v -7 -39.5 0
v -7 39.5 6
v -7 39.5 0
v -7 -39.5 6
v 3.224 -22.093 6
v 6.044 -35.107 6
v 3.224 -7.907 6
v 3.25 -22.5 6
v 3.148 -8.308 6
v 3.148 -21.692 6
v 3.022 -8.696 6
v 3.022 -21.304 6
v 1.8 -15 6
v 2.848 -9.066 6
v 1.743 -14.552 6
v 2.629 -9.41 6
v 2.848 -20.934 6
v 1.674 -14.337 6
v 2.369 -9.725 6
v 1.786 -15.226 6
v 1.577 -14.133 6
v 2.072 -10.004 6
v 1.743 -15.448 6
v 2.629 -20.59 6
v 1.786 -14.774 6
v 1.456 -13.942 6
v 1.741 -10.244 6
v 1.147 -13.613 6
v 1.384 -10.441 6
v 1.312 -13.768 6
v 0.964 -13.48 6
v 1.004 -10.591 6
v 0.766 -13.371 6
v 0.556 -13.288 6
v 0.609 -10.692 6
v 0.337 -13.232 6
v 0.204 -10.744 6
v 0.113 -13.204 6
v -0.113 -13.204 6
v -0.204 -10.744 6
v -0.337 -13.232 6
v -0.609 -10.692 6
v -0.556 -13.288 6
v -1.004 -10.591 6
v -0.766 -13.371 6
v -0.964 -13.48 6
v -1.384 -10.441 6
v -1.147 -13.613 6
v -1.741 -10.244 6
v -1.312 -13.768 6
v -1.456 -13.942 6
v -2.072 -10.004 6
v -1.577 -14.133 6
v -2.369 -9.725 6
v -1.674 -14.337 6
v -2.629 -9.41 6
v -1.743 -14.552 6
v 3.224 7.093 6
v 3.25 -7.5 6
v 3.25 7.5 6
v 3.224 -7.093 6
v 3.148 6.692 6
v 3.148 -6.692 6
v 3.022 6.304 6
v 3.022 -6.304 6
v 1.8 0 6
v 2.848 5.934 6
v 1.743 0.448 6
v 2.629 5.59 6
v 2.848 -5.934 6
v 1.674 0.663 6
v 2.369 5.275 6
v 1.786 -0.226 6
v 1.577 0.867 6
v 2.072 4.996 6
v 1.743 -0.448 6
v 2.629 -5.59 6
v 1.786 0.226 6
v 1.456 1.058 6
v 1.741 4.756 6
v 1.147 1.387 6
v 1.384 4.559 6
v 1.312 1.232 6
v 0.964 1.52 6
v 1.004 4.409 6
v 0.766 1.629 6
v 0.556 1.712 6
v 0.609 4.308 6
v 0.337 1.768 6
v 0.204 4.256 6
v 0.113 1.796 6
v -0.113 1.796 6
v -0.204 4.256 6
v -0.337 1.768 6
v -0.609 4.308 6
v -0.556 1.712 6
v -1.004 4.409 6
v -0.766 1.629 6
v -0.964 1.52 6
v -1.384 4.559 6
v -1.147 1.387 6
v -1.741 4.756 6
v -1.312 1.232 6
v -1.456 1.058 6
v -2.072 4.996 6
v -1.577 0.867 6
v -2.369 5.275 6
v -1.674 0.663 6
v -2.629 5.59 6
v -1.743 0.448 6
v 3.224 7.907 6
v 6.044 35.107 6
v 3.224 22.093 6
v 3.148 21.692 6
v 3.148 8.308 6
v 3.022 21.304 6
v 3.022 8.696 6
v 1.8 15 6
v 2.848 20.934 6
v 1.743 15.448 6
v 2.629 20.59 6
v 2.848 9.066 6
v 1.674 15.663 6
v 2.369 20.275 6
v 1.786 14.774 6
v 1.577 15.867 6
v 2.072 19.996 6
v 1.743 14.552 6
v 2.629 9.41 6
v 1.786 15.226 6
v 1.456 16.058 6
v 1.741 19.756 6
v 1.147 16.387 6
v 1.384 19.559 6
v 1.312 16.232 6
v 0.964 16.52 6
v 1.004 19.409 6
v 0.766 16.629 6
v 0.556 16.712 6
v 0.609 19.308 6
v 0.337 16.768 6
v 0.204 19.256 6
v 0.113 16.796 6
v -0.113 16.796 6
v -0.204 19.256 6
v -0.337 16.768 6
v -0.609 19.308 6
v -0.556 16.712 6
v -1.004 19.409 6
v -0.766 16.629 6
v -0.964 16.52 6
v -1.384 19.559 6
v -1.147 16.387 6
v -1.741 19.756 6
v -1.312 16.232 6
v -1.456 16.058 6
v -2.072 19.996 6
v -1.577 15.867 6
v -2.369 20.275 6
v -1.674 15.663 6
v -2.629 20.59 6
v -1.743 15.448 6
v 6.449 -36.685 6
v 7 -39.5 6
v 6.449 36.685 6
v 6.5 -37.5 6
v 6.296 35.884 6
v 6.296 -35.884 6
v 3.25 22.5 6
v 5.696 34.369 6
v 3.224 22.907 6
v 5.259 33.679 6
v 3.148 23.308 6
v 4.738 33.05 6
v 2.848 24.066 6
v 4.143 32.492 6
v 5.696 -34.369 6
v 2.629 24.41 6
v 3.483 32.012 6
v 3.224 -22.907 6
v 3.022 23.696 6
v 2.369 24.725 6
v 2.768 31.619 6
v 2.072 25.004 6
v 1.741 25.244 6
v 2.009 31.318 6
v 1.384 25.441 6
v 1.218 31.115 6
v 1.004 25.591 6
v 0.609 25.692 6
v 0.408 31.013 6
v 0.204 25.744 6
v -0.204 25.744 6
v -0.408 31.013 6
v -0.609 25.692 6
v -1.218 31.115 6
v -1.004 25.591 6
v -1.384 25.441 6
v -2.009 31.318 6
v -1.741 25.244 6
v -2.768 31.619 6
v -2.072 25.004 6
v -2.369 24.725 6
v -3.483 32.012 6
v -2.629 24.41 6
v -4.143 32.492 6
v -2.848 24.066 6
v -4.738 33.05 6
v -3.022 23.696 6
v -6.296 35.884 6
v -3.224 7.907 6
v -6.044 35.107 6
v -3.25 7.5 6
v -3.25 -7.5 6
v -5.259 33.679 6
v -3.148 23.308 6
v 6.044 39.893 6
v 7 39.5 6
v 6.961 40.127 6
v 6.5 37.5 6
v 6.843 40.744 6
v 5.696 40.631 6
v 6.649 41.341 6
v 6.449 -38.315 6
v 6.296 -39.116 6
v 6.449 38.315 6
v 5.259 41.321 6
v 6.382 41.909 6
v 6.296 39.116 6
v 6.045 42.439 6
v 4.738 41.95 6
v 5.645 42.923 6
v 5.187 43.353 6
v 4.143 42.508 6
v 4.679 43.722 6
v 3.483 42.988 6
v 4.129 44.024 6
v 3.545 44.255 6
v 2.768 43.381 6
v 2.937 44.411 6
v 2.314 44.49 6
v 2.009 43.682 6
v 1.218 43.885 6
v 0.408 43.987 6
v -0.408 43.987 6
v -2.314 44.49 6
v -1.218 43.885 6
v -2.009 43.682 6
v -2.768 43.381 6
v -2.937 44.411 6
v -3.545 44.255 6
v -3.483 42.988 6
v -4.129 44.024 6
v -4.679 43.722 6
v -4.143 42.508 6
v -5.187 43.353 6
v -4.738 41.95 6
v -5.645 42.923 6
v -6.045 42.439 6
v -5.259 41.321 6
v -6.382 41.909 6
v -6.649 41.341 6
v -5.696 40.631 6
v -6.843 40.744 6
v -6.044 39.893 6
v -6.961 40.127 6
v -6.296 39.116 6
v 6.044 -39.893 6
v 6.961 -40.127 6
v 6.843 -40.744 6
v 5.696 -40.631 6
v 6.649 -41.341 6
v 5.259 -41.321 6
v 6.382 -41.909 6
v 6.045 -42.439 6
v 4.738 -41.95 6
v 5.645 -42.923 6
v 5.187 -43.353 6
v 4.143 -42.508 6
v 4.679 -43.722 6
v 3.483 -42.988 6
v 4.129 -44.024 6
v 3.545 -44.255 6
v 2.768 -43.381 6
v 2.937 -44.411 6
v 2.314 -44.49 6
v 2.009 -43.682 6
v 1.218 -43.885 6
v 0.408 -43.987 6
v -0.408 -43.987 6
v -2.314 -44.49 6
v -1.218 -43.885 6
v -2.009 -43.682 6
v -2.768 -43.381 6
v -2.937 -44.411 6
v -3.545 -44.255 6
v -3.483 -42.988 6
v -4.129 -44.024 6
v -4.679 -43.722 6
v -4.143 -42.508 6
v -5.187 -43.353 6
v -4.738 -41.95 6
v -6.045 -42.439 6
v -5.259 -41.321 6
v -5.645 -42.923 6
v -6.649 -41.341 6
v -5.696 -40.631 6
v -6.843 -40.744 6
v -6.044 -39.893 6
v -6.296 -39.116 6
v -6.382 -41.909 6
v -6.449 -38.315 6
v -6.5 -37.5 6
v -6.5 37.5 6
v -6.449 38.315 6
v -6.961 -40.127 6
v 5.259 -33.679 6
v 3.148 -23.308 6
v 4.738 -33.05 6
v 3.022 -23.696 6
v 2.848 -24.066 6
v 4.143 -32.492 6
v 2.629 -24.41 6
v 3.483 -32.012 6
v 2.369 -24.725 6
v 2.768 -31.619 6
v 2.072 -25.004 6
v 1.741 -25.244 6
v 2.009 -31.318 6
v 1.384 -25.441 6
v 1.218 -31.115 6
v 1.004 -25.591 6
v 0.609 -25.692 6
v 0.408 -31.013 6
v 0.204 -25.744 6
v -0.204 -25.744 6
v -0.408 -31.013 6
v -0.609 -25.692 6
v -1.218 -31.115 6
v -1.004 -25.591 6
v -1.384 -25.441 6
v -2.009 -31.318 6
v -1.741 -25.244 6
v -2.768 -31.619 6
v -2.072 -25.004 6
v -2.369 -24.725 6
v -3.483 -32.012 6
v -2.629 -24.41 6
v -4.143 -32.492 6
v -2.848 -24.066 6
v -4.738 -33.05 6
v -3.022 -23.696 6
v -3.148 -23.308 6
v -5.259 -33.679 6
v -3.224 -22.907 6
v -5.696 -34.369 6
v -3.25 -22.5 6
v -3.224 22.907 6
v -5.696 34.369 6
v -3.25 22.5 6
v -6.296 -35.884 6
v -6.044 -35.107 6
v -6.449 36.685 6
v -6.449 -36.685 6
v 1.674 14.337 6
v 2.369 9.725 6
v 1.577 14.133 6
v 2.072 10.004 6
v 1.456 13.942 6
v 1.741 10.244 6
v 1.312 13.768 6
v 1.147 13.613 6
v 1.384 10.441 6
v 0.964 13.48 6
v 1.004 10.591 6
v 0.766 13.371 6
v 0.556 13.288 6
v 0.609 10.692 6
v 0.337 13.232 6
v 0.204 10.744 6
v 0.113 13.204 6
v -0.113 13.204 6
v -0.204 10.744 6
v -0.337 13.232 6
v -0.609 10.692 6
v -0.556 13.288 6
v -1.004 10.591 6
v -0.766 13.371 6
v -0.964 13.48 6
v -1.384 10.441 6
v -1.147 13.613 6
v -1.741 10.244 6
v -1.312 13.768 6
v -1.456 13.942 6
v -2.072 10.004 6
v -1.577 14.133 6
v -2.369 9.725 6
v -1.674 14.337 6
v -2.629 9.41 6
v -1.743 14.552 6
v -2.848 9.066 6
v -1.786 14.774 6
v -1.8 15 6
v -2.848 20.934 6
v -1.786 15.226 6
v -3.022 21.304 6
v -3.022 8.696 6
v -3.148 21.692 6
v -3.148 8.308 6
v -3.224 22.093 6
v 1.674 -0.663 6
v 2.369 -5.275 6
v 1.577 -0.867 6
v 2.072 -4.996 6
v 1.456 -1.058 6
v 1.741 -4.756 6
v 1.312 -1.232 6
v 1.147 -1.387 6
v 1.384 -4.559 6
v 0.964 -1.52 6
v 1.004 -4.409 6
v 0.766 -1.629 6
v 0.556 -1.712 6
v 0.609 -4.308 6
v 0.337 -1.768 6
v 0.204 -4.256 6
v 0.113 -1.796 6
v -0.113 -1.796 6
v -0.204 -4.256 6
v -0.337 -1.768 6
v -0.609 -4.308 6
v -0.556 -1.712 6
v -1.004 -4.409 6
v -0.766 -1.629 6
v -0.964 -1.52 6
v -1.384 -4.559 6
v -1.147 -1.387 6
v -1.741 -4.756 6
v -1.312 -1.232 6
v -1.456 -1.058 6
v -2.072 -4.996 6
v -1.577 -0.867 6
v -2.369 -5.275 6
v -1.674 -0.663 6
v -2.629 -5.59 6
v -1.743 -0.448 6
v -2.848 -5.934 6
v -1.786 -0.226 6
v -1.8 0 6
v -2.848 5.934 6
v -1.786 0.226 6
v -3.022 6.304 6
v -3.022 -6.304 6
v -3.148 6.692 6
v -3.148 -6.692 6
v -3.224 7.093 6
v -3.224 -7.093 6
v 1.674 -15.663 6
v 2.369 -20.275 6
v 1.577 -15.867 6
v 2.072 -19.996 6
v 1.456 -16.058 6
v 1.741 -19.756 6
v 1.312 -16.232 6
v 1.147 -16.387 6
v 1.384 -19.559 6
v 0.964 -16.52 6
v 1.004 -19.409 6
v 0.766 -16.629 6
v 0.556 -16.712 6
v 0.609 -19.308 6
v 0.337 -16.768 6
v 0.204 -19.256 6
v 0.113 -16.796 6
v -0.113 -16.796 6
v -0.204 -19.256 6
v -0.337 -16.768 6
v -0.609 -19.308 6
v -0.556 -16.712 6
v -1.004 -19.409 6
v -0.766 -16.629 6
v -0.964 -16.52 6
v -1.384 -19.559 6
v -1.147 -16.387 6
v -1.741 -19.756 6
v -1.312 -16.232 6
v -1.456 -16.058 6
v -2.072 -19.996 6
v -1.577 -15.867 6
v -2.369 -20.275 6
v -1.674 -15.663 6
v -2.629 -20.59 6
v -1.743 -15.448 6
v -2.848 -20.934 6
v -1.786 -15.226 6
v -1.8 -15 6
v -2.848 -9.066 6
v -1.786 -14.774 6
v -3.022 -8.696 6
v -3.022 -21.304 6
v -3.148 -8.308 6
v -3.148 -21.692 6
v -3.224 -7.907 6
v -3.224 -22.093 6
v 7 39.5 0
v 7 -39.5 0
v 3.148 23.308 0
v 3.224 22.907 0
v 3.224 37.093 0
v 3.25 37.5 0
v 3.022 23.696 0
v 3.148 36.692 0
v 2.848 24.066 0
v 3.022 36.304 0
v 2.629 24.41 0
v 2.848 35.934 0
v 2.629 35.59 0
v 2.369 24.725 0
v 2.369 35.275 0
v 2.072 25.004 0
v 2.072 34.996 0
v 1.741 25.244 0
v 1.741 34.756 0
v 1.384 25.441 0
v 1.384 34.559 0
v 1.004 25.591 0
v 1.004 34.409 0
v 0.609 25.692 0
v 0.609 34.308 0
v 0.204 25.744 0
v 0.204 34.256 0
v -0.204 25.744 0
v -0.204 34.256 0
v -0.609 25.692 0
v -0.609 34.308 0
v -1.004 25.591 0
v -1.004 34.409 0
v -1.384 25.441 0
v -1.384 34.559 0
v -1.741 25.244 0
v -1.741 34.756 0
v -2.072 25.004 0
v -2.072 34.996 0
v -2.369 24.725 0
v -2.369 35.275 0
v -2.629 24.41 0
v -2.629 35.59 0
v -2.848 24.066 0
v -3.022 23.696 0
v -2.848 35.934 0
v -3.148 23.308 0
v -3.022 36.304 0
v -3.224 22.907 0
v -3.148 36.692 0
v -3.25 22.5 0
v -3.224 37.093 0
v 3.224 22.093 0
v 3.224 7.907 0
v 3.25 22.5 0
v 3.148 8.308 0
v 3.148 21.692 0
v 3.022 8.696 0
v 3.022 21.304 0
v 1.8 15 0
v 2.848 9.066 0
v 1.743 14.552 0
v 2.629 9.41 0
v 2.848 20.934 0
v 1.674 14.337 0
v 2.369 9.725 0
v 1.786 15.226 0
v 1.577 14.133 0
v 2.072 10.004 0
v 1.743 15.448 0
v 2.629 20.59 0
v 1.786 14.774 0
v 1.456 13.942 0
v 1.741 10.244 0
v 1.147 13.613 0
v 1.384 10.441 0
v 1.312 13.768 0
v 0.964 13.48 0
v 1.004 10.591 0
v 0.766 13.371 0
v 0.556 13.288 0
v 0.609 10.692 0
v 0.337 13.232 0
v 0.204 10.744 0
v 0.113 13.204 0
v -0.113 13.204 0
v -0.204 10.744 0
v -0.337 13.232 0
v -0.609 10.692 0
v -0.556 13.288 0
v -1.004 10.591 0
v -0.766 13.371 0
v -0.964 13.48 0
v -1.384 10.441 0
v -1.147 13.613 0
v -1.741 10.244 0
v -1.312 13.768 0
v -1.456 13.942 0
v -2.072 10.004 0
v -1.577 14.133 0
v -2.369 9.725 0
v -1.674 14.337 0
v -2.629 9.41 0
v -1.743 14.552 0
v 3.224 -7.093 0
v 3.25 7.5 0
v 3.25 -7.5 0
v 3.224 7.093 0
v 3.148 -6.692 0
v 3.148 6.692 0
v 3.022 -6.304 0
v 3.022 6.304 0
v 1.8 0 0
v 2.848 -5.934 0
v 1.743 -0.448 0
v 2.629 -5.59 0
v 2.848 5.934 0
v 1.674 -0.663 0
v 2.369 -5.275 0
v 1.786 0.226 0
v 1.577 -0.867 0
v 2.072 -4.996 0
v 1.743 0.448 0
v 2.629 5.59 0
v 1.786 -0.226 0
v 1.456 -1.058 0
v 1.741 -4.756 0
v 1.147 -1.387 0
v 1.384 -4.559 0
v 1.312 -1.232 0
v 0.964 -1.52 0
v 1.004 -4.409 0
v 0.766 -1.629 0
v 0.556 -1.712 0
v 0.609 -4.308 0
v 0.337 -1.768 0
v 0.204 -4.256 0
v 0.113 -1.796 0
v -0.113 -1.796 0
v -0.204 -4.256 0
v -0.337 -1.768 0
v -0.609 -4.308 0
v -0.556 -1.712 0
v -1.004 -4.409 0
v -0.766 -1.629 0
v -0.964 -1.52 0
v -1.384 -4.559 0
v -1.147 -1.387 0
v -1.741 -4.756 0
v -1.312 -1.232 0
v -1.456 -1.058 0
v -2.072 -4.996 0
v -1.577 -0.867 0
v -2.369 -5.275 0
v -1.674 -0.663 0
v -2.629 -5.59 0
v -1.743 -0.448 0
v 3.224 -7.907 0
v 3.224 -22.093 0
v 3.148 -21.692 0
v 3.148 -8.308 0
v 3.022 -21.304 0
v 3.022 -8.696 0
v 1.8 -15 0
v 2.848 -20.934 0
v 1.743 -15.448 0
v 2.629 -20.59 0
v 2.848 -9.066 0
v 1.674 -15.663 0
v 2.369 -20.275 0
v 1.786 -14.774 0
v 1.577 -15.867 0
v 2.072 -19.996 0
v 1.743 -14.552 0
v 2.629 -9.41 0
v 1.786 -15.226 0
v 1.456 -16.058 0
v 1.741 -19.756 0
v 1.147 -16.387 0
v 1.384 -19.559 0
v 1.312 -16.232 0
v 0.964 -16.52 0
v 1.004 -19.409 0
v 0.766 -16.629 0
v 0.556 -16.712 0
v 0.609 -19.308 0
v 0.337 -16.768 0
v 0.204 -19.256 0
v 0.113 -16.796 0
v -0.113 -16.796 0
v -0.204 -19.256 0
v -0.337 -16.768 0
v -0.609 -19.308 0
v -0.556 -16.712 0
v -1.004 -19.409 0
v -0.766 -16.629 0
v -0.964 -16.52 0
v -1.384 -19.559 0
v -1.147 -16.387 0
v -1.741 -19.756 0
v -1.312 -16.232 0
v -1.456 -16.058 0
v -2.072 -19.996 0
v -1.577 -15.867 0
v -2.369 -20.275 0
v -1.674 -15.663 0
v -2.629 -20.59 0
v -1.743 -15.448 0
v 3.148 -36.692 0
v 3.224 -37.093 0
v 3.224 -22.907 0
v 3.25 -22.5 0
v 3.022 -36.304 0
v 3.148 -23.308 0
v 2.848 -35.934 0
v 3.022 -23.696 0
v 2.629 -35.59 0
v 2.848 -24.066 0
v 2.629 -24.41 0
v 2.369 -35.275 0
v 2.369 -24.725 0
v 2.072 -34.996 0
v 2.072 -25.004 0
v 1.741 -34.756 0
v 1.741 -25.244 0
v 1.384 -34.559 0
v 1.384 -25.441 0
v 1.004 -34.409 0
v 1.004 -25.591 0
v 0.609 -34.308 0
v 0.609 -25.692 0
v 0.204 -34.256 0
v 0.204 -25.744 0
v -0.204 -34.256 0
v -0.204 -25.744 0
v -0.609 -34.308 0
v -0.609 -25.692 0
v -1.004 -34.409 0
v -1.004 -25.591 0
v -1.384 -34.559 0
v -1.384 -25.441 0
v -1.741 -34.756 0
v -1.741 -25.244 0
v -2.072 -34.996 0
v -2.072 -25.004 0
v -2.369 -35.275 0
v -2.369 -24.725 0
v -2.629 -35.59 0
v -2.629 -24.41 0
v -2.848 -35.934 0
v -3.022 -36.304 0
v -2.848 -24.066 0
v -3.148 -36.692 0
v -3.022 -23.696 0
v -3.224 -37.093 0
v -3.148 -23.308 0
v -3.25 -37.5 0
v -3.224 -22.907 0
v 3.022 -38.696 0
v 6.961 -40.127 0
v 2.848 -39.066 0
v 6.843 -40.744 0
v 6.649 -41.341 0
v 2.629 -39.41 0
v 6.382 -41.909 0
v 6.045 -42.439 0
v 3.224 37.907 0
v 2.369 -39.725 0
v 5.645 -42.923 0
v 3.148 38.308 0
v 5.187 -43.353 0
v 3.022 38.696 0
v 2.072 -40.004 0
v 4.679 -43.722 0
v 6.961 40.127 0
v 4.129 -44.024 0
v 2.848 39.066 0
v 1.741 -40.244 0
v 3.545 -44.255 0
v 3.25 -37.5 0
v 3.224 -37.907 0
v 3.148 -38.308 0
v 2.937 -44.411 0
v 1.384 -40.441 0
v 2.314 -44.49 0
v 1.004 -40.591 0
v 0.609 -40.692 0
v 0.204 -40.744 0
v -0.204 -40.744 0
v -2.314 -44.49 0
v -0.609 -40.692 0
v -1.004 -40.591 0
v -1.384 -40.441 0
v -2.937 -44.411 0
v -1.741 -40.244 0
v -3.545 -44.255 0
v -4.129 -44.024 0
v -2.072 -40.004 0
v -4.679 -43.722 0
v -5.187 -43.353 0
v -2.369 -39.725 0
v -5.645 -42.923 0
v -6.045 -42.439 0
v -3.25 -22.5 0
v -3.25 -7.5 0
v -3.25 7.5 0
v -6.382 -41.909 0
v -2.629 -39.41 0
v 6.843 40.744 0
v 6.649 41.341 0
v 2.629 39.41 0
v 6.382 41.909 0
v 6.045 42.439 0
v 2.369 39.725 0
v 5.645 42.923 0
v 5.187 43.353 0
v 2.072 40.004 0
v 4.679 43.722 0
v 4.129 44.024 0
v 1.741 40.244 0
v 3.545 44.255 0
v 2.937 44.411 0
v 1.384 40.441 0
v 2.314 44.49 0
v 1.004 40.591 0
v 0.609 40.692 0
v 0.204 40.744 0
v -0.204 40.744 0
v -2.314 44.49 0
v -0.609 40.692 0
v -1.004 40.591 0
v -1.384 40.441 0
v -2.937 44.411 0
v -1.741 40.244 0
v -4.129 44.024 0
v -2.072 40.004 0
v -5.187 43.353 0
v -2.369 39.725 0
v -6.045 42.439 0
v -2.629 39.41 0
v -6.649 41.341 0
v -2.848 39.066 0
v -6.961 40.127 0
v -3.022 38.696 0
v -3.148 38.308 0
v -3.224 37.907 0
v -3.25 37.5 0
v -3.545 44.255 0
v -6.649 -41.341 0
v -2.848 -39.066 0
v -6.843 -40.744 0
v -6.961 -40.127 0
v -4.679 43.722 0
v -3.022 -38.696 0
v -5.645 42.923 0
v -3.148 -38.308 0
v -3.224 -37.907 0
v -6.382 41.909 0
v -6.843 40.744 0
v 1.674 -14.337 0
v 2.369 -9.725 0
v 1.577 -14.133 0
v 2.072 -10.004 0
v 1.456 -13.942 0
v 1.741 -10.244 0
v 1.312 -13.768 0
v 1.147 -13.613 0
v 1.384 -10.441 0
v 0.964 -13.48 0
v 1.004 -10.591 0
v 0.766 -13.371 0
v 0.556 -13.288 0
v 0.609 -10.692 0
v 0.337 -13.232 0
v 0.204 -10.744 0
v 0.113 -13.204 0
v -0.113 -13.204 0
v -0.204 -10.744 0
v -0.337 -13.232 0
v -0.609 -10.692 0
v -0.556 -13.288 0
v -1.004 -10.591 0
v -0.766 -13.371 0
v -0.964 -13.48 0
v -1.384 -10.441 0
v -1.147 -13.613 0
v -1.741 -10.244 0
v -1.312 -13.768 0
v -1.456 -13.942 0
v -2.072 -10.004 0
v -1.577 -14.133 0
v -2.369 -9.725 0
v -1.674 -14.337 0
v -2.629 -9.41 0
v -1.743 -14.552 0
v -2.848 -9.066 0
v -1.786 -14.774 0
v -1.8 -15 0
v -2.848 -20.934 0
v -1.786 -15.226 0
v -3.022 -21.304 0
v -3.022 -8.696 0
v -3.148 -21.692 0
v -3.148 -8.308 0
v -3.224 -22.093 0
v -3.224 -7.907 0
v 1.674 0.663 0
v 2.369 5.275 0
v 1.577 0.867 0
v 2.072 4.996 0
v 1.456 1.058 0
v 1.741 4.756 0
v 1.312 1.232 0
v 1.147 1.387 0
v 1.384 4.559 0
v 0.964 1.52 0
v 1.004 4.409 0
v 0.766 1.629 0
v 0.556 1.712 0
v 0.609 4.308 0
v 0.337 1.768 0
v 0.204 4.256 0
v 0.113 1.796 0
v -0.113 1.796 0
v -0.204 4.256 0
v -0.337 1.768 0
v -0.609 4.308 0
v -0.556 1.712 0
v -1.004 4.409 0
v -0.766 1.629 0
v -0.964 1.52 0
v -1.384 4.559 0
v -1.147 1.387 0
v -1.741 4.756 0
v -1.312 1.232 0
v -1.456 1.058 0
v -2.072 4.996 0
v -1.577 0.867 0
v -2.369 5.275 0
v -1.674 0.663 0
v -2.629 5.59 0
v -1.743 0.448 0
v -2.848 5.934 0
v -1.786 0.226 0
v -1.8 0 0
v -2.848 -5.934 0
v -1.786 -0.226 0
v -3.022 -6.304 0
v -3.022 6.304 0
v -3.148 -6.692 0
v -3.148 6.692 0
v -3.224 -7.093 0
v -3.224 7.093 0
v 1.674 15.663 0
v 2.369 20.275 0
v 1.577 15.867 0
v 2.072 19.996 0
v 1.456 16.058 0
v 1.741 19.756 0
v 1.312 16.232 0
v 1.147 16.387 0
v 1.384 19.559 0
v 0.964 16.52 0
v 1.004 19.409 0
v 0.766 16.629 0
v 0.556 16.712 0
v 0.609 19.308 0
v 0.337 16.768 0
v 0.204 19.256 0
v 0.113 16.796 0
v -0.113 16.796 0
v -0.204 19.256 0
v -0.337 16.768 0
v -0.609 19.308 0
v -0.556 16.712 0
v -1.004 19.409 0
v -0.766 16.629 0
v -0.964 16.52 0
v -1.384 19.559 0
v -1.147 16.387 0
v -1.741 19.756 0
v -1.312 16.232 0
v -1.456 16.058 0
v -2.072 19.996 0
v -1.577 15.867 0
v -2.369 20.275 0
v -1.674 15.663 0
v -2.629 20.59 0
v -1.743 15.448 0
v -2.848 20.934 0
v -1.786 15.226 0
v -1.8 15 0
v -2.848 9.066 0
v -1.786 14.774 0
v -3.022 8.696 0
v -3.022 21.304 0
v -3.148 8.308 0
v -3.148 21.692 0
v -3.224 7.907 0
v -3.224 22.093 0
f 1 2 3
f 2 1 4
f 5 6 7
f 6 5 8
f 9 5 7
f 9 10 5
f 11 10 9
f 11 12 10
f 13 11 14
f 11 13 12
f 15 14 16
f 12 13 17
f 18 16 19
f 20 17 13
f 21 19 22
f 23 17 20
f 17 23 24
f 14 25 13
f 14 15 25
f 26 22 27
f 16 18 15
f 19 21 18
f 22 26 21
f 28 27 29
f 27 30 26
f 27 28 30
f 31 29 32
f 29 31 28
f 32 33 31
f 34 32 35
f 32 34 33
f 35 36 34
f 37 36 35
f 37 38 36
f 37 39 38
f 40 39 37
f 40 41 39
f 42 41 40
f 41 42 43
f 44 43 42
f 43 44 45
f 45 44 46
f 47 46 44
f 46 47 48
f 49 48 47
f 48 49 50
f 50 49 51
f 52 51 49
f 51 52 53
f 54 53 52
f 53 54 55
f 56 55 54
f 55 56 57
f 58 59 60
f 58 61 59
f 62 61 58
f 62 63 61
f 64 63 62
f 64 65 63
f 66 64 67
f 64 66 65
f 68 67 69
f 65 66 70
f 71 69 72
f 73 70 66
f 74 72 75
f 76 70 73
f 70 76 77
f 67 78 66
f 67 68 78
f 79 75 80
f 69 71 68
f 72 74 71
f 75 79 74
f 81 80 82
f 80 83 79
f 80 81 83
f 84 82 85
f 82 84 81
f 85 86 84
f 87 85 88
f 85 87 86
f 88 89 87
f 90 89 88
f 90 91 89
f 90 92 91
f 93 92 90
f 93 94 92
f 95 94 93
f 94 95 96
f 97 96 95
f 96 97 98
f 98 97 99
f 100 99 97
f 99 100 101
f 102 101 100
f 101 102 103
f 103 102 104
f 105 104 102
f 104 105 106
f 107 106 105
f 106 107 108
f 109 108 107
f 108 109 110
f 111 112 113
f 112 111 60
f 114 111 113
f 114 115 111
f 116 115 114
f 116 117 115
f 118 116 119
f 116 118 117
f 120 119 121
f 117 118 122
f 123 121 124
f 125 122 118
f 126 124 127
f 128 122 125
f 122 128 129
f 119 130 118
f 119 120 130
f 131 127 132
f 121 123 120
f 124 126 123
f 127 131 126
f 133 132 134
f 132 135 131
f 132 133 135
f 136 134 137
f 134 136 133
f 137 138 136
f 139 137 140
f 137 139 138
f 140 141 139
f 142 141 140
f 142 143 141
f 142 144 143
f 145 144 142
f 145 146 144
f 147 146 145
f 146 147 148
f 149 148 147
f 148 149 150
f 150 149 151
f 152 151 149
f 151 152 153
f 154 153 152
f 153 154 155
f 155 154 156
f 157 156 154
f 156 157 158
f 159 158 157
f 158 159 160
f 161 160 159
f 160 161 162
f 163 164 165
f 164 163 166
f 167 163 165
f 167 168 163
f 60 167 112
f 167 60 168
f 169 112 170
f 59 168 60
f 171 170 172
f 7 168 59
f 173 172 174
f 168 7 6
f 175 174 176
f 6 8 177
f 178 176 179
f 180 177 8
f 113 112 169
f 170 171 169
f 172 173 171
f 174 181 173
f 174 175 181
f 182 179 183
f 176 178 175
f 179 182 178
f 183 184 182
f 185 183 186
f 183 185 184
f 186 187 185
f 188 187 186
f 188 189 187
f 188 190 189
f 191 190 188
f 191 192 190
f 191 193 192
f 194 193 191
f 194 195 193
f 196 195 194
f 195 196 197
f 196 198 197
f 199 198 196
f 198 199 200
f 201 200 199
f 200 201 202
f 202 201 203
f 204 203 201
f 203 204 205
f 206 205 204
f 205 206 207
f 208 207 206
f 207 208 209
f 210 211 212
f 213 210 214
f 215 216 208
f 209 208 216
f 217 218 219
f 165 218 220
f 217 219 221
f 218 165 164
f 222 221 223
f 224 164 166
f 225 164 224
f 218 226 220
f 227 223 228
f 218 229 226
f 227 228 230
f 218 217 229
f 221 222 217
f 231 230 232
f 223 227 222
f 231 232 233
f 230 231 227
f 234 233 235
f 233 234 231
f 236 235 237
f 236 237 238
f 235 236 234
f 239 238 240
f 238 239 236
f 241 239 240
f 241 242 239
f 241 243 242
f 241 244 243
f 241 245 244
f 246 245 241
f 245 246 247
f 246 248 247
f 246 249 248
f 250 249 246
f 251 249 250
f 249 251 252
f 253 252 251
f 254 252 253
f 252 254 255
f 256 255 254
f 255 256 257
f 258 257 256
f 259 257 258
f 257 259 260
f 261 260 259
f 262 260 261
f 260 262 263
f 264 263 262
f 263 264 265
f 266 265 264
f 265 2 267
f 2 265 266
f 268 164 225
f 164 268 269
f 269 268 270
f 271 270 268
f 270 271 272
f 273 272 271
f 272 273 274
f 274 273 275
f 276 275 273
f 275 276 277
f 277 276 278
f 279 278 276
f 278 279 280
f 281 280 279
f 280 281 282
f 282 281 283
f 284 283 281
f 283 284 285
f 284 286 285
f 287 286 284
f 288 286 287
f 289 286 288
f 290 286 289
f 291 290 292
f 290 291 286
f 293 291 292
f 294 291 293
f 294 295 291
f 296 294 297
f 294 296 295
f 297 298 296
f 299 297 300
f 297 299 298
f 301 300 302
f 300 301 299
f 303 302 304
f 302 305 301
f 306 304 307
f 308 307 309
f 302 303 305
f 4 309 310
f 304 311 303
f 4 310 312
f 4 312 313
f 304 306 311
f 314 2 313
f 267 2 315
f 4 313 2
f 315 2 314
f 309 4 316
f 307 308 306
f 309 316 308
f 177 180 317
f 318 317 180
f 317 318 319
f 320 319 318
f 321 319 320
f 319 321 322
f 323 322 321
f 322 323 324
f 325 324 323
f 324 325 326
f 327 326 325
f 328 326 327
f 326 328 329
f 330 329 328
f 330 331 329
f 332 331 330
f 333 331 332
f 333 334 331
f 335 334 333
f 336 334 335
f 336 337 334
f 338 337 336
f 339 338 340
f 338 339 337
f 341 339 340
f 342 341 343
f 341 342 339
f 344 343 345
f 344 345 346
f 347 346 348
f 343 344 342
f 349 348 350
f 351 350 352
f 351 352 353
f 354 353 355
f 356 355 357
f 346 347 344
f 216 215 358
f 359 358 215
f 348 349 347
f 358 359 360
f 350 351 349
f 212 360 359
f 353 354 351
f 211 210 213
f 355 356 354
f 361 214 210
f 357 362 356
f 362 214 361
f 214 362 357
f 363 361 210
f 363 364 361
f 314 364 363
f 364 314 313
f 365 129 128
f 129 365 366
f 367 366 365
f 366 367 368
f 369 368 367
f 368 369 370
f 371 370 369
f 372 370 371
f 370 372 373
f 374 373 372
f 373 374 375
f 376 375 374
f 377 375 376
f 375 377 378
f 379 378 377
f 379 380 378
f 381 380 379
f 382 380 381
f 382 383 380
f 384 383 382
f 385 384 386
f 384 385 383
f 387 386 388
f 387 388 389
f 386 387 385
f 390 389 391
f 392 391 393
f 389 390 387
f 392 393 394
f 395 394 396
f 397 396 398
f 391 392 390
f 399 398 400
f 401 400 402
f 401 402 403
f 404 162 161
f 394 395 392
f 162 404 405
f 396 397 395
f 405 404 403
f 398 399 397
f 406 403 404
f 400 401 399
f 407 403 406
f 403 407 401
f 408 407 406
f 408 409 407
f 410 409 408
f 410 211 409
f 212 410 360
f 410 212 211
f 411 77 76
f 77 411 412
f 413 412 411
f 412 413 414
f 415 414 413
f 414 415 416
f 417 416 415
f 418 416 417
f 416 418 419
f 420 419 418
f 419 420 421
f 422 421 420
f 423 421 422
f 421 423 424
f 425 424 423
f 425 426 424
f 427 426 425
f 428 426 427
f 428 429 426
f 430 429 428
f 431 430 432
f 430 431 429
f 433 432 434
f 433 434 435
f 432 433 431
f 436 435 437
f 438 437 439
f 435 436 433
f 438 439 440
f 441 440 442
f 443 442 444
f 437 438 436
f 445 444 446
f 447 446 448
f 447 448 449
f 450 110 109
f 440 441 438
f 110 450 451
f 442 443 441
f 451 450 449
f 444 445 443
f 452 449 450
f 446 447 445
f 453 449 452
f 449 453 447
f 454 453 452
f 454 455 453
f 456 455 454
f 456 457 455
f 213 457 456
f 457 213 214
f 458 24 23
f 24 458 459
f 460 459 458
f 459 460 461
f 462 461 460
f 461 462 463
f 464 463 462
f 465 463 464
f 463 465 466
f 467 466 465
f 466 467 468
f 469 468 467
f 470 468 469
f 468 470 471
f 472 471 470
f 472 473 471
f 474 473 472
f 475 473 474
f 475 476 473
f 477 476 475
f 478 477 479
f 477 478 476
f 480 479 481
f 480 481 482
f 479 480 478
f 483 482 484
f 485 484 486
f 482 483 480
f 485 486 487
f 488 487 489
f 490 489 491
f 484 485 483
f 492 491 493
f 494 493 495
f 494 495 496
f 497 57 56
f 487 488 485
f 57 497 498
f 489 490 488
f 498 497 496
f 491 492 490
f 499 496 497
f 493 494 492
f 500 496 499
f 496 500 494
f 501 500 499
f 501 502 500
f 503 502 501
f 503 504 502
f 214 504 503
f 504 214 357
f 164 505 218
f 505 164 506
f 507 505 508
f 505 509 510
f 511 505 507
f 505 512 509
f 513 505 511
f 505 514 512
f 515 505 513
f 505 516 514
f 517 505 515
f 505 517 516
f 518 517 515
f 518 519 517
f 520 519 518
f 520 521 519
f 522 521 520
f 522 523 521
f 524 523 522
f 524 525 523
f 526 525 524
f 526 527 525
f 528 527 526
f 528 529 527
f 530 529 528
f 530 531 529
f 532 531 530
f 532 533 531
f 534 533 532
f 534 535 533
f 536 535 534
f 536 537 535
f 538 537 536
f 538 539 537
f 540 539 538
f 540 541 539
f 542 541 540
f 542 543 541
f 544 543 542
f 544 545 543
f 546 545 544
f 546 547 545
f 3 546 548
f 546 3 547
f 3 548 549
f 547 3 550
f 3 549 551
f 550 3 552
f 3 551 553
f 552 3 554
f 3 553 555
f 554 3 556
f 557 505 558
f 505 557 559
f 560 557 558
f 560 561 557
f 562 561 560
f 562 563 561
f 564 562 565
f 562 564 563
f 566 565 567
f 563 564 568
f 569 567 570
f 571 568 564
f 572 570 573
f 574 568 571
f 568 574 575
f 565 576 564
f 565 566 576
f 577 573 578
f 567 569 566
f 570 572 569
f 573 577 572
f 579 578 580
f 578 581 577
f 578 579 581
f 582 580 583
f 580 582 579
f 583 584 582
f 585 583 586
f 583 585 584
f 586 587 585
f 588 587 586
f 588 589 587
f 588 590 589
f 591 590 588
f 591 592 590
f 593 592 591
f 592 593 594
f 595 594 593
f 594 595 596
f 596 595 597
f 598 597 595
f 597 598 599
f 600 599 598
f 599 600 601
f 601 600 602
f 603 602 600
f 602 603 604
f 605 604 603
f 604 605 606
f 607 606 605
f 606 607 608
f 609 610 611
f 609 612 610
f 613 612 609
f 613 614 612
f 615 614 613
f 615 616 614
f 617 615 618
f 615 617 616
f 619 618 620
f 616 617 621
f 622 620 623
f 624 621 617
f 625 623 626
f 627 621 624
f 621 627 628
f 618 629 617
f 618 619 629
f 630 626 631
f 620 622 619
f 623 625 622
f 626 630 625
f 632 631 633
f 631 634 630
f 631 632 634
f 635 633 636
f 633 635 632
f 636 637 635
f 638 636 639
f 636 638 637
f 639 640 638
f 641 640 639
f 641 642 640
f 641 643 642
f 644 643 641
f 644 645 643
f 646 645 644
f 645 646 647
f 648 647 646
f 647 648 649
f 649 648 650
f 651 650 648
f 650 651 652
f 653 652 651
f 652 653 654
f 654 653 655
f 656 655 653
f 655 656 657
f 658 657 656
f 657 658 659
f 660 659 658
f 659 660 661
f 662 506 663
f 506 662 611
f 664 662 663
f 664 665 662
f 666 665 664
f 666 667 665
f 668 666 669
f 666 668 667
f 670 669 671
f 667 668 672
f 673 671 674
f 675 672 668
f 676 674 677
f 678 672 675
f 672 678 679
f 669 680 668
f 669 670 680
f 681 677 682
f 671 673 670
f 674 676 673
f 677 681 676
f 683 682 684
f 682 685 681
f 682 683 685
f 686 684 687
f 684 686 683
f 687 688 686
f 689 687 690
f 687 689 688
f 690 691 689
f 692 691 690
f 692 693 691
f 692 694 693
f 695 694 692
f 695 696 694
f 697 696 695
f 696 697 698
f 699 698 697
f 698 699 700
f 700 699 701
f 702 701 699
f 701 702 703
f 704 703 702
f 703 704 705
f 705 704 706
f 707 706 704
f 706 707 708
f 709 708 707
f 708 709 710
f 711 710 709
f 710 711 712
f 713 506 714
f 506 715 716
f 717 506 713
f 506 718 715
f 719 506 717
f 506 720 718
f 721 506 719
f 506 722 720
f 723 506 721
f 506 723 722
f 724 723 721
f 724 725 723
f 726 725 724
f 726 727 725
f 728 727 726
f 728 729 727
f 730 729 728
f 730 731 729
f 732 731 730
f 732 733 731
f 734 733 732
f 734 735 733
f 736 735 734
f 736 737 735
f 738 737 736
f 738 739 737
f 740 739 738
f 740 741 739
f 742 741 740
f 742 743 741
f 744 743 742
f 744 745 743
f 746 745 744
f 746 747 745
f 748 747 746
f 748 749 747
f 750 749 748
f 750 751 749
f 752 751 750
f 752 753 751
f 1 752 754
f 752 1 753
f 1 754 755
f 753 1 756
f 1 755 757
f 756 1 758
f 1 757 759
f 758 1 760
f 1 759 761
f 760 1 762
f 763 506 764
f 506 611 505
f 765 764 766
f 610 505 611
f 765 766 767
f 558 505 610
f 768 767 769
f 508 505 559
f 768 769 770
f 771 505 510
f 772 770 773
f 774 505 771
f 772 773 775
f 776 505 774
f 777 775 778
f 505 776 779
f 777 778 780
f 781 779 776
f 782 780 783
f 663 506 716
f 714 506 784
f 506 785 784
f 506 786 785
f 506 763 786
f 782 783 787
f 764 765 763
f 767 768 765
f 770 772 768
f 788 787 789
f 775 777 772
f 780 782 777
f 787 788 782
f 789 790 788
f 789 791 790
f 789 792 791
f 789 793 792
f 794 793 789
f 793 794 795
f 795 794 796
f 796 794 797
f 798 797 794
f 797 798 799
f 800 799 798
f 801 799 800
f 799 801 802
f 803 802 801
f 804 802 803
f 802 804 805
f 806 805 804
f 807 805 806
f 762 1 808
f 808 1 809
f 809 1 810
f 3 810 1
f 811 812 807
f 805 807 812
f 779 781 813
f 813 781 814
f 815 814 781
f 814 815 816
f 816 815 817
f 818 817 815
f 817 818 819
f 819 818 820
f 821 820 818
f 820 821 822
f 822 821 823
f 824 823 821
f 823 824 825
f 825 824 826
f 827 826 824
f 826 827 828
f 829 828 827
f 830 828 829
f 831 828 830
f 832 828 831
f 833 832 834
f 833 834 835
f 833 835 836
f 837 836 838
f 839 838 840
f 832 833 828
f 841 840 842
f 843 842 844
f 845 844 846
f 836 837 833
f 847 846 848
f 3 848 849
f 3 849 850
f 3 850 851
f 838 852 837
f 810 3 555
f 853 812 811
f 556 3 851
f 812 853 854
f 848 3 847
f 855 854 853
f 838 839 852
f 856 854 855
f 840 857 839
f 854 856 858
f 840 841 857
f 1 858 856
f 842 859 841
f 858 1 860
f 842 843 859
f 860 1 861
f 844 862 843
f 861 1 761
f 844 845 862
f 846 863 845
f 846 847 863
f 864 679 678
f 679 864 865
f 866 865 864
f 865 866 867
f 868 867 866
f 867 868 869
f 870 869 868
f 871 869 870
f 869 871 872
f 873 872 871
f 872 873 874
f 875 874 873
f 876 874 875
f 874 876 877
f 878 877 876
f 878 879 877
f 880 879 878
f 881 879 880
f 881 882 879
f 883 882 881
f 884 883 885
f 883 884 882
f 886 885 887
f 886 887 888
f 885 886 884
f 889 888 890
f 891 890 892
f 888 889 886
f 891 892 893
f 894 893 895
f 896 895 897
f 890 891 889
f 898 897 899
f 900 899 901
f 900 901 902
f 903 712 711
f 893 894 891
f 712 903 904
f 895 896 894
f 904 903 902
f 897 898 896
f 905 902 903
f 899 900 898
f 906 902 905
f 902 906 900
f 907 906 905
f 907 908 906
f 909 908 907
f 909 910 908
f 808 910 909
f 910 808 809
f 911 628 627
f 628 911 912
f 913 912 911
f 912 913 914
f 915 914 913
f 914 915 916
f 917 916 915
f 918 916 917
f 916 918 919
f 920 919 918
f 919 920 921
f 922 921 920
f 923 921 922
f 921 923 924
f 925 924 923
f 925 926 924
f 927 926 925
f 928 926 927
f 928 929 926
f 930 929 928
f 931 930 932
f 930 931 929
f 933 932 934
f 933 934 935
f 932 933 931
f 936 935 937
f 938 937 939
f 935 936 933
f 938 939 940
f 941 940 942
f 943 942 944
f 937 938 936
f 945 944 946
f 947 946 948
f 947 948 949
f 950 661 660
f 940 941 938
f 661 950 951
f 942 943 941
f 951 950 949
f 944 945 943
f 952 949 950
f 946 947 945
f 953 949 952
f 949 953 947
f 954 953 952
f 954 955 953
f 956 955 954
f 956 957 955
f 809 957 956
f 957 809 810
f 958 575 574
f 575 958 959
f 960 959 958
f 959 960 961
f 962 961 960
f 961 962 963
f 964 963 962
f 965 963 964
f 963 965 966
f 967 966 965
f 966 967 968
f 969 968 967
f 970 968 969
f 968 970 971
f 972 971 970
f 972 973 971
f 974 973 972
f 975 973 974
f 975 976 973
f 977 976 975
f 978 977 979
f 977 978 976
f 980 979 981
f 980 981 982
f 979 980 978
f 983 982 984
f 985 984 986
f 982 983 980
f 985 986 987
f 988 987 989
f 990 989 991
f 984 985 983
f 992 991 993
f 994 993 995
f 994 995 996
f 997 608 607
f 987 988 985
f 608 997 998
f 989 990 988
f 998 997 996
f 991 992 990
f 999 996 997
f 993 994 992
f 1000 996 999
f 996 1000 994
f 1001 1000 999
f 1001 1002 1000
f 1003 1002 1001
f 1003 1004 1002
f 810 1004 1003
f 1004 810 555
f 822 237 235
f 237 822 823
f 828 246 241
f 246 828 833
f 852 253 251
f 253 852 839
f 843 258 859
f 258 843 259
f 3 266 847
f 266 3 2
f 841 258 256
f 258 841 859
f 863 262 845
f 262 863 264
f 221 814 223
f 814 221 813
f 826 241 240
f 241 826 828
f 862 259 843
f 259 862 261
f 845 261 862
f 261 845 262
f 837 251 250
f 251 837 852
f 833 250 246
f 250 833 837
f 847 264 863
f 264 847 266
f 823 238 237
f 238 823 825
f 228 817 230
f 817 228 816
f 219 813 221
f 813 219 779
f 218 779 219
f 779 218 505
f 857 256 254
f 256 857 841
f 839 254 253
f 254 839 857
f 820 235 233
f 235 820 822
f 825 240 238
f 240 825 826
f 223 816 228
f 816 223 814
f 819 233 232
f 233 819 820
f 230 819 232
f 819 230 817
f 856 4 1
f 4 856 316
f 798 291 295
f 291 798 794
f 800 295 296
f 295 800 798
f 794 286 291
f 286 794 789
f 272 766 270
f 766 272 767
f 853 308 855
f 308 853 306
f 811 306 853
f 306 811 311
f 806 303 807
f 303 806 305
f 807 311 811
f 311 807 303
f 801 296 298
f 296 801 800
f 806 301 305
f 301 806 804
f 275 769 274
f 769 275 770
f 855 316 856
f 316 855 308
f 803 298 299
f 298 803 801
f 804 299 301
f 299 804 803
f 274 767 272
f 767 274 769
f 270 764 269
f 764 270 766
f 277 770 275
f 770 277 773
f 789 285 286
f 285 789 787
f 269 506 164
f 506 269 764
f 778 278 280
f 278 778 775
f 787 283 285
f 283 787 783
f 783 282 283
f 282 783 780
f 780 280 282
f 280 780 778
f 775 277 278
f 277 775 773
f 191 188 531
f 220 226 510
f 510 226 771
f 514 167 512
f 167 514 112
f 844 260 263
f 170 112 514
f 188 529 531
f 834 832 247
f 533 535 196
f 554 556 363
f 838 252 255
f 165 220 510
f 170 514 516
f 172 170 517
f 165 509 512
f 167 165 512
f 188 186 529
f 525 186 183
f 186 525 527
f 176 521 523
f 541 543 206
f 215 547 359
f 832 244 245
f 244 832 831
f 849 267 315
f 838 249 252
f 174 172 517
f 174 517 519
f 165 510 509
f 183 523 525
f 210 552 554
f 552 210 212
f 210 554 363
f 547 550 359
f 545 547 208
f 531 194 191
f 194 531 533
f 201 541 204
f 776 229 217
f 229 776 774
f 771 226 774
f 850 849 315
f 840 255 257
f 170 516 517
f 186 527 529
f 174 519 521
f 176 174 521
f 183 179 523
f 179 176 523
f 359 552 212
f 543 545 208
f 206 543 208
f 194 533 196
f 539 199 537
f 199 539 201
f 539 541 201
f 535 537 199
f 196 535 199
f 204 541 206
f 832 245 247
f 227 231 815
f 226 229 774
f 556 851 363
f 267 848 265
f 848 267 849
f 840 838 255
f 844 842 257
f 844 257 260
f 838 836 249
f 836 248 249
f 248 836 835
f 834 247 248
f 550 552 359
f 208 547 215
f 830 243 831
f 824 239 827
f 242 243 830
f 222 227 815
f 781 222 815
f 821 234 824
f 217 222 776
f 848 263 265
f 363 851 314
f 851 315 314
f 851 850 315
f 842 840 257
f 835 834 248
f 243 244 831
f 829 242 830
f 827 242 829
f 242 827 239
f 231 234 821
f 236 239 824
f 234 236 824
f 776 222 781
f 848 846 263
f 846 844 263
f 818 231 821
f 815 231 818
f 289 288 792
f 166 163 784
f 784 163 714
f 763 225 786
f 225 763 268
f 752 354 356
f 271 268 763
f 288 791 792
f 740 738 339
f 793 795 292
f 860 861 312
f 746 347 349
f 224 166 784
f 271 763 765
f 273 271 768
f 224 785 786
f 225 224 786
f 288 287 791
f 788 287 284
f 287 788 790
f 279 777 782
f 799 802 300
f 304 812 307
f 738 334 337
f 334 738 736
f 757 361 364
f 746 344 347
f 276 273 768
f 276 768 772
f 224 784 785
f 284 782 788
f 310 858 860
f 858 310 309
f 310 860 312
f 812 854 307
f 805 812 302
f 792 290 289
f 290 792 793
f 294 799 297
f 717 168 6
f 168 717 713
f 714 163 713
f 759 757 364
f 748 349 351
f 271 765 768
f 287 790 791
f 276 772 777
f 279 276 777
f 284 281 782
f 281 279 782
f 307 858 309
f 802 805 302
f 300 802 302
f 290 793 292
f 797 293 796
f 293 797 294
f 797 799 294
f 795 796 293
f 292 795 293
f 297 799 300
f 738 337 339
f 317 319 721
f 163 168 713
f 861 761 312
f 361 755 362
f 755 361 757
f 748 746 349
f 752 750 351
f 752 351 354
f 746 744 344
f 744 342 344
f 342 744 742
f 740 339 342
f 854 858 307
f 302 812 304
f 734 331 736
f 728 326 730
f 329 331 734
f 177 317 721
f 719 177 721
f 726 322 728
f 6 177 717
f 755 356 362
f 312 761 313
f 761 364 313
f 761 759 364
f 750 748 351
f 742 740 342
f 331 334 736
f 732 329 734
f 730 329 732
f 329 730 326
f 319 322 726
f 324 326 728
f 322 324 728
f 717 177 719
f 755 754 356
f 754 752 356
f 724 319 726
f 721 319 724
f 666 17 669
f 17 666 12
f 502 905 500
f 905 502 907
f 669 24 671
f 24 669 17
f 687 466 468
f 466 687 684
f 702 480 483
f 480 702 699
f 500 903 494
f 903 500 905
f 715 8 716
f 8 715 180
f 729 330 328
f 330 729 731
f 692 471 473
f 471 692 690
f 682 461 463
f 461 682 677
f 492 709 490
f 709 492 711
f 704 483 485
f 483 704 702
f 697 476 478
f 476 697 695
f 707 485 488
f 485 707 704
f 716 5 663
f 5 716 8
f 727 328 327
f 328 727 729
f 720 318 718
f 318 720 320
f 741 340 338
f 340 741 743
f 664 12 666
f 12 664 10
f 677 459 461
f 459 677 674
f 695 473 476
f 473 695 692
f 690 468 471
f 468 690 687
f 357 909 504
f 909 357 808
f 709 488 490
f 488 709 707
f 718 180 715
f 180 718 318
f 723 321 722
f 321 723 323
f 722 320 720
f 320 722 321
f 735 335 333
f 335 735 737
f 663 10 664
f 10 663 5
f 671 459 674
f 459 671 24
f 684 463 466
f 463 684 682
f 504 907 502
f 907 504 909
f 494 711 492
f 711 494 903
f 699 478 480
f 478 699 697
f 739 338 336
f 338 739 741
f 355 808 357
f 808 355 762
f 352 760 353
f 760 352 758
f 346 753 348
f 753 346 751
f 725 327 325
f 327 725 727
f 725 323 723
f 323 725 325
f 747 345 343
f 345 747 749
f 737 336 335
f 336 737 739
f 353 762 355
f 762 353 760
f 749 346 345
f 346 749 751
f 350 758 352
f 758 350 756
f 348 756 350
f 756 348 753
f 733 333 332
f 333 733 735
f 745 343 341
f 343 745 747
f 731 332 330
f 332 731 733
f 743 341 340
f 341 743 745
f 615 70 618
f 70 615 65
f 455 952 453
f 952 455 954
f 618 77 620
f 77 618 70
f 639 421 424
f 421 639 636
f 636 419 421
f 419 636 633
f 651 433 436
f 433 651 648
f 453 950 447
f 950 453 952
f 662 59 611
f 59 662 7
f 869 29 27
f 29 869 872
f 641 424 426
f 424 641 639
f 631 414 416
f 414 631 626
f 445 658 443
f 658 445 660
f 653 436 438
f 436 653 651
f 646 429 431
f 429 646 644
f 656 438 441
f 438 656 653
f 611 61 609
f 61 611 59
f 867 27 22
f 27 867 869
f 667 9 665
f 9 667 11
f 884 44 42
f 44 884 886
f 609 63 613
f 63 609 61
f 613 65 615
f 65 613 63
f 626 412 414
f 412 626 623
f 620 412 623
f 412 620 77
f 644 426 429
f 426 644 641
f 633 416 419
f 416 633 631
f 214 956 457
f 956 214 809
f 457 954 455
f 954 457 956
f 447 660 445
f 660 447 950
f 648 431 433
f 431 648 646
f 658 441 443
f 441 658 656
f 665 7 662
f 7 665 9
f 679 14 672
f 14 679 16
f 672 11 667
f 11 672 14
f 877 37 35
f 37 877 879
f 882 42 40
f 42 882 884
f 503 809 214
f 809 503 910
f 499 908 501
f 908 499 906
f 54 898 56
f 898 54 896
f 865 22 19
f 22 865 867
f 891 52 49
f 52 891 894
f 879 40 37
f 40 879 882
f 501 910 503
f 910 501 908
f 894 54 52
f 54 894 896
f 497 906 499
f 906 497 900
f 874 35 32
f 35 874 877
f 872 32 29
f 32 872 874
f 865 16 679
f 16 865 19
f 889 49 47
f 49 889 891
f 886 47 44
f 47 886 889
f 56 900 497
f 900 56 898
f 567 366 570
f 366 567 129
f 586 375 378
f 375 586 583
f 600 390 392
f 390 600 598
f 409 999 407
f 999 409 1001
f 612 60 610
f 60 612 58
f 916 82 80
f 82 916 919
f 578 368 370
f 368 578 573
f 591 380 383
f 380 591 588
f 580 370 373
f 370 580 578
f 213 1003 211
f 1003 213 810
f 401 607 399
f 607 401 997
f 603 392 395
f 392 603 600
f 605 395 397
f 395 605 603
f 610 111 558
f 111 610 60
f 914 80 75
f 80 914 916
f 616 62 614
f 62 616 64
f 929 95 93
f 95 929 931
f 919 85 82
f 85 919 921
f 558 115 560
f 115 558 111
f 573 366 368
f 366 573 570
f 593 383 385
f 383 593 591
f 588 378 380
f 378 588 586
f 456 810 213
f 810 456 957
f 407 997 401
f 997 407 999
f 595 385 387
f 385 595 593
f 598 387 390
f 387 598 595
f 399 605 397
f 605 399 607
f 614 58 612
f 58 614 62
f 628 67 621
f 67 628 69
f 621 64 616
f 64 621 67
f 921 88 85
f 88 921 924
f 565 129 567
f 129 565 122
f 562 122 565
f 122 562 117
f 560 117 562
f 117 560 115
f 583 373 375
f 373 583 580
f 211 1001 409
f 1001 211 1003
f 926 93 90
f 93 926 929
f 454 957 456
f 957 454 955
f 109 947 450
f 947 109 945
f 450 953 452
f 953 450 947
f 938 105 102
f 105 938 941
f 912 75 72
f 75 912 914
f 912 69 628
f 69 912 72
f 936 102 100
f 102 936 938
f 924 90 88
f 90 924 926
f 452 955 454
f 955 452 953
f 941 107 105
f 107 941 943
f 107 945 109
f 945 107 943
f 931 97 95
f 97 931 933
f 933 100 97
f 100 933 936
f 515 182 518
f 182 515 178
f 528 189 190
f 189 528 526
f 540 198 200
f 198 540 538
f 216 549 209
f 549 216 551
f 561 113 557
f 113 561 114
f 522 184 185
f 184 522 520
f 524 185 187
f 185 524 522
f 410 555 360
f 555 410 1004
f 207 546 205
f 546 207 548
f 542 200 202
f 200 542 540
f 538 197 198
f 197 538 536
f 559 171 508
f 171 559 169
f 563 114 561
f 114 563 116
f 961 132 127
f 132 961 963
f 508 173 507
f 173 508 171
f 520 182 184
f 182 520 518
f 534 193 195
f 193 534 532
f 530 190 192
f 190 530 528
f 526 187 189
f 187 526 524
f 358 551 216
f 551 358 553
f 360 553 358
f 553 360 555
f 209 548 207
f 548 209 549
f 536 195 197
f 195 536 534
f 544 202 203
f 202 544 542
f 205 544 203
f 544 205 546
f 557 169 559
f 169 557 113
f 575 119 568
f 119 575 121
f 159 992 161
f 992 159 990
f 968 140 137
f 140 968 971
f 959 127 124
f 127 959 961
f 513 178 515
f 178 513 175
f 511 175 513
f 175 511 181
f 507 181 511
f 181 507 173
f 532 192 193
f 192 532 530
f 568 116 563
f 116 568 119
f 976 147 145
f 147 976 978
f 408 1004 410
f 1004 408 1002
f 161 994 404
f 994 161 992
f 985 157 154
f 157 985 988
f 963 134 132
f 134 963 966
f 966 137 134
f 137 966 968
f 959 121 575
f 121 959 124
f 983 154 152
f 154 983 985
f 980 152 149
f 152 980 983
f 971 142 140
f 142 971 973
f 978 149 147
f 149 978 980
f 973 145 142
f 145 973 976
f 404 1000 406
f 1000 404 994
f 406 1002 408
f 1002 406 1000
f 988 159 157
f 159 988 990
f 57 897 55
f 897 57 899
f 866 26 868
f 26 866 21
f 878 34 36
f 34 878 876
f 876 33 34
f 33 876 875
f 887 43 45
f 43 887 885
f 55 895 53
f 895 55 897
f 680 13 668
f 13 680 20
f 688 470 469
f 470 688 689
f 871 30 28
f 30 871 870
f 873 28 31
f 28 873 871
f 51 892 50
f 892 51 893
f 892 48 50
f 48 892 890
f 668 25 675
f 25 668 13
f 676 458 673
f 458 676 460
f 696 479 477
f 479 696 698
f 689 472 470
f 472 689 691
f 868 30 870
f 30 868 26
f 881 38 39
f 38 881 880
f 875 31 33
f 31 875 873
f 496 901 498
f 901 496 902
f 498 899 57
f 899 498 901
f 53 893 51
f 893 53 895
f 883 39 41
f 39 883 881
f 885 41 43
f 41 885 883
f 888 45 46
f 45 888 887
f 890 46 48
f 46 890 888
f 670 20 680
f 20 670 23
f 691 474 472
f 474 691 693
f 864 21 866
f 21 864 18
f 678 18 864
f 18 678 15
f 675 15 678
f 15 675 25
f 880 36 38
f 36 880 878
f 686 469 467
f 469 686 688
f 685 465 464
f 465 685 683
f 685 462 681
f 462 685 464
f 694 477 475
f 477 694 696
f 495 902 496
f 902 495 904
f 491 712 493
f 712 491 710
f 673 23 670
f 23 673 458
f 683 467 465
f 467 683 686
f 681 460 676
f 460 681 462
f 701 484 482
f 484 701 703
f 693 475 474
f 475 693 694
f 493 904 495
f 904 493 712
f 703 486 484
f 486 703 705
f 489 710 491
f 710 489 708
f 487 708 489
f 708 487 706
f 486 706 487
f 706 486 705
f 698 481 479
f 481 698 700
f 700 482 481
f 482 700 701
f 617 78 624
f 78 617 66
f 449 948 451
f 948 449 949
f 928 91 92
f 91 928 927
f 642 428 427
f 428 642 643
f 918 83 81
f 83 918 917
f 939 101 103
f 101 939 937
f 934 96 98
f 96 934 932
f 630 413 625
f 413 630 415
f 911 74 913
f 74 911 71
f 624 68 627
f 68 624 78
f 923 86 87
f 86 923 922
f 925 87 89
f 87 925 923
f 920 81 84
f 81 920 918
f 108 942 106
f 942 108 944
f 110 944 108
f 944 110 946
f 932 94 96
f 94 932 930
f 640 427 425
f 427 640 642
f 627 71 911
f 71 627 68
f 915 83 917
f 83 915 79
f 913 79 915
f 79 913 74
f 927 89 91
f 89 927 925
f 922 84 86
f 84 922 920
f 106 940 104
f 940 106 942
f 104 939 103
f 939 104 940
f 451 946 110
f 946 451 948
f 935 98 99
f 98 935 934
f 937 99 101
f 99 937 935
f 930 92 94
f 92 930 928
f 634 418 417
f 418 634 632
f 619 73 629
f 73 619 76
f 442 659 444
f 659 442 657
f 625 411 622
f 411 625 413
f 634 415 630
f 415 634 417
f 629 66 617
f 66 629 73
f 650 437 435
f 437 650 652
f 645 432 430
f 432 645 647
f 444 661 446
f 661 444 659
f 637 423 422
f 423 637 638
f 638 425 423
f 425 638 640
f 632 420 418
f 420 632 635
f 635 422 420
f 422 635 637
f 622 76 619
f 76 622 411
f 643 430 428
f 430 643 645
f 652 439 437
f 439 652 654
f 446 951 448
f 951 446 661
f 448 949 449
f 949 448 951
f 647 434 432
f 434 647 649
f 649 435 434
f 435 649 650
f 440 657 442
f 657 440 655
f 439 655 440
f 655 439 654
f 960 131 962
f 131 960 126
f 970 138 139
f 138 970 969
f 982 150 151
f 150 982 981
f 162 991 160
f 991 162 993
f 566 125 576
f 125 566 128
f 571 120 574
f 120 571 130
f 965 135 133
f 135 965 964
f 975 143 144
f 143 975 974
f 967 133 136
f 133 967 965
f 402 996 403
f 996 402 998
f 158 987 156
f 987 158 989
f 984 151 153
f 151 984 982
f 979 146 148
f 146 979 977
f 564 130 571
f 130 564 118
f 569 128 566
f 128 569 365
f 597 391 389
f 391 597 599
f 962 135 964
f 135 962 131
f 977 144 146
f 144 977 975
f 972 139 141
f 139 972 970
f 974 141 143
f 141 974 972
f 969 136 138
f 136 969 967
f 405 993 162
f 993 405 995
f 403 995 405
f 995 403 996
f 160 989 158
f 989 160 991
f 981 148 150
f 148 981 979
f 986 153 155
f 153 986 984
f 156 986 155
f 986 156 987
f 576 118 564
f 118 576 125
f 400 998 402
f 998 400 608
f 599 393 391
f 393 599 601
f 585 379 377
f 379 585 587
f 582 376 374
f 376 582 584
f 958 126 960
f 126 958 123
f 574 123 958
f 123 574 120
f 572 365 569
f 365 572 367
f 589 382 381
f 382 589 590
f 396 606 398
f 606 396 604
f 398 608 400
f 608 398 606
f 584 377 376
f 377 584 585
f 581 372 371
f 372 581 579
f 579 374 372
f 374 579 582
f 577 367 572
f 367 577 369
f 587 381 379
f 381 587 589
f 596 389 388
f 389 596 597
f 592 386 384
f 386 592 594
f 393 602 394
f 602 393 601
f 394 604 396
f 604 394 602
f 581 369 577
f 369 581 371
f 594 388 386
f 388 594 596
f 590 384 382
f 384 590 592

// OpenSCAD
$fn = 50;


difference() {
	union() {
		hull() {
			translate(v = [-2.0000000000, 24.5000000000, 0]) {
				cylinder(h = 6, r = 5);
			}
			translate(v = [2.0000000000, 24.5000000000, 0]) {
				cylinder(h = 6, r = 5);
			}
			translate(v = [-2.0000000000, -24.5000000000, 0]) {
				cylinder(h = 6, r = 5);
			}
			translate(v = [2.0000000000, -24.5000000000, 0]) {
				cylinder(h = 6, r = 5);
			}
		}
		translate(v = [0.0000000000, 30.0000000000, 0]) {
			hull() {
				translate(v = [-2.0000000000, 9.5000000000, 0]) {
					cylinder(h = 6, r = 5);
				}
				translate(v = [2.0000000000, 9.5000000000, 0]) {
					cylinder(h = 6, r = 5);
				}
				translate(v = [-2.0000000000, -9.5000000000, 0]) {
					cylinder(h = 6, r = 5);
				}
				translate(v = [2.0000000000, -9.5000000000, 0]) {
					cylinder(h = 6, r = 5);
				}
			}
		}
		translate(v = [0.0000000000, 30.0000000000, 0]) {
			hull() {
				translate(v = [-2.0000000000, 9.5000000000, 0]) {
					cylinder(h = 6, r = 5);
				}
				translate(v = [2.0000000000, 9.5000000000, 0]) {
					cylinder(h = 6, r = 5);
				}
				translate(v = [-2.0000000000, -9.5000000000, 0]) {
					cylinder(h = 6, r = 5);
				}
				translate(v = [2.0000000000, -9.5000000000, 0]) {
					cylinder(h = 6, r = 5);
				}
			}
		}
		translate(v = [0.0000000000, -30.0000000000, 0]) {
			hull() {
				translate(v = [-2.0000000000, 9.5000000000, 0]) {
					cylinder(h = 6, r = 5);
				}
				translate(v = [2.0000000000, 9.5000000000, 0]) {
					cylinder(h = 6, r = 5);
				}
				translate(v = [-2.0000000000, -9.5000000000, 0]) {
					cylinder(h = 6, r = 5);
				}
				translate(v = [2.0000000000, -9.5000000000, 0]) {
					cylinder(h = 6, r = 5);
				}
			}
		}
		translate(v = [0.0000000000, -30.0000000000, 0]) {
			hull() {
				translate(v = [-2.0000000000, 9.5000000000, 0]) {
					cylinder(h = 6, r = 5);
				}
				translate(v = [2.0000000000, 9.5000000000, 0]) {
					cylinder(h = 6, r = 5);
				}
				translate(v = [-2.0000000000, -9.5000000000, 0]) {
					cylinder(h = 6, r = 5);
				}
				translate(v = [2.0000000000, -9.5000000000, 0]) {
					cylinder(h = 6, r = 5);
				}
			}
		}
	}
	union() {
		translate(v = [0.0000000000, 37.5000000000, 6]) {
			rotate(a = [0, 0, 0]) {
				difference() {
					union() {
						#translate(v = [0, 0, -6.0000000000]) {
							cylinder(h = 6, r = 2.2500000000);
						}
						#translate(v = [0, 0, -6]) {
							cylinder(h = 6, r1 = 3.2500000000, r2 = 6.5000000000);
						}
						#translate(v = [0, 0, -6.0000000000]) {
							cylinder(h = 6, r = 3.2500000000);
						}
						#translate(v = [0, 0, -6.0000000000]) {
							cylinder(h = 6, r = 2.2500000000);
						}
					}
					union();
				}
			}
		}
		translate(v = [0.0000000000, 37.5000000000, 6]) {
			rotate(a = [0, 0, 0]) {
				difference() {
					union() {
						#translate(v = [0, 0, -6.0000000000]) {
							cylinder(h = 6, r = 2.2500000000);
						}
						#translate(v = [0, 0, -6]) {
							cylinder(h = 6, r1 = 3.2500000000, r2 = 6.5000000000);
						}
						#translate(v = [0, 0, -6.0000000000]) {
							cylinder(h = 6, r = 3.2500000000);
						}
						#translate(v = [0, 0, -6.0000000000]) {
							cylinder(h = 6, r = 2.2500000000);
						}
					}
					union();
				}
			}
		}
		translate(v = [0.0000000000, -37.5000000000, 6]) {
			rotate(a = [0, 0, 0]) {
				difference() {
					union() {
						#translate(v = [0, 0, -6.0000000000]) {
							cylinder(h = 6, r = 2.2500000000);
						}
						#translate(v = [0, 0, -6]) {
							cylinder(h = 6, r1 = 3.2500000000, r2 = 6.5000000000);
						}
						#translate(v = [0, 0, -6.0000000000]) {
							cylinder(h = 6, r = 3.2500000000);
						}
						#translate(v = [0, 0, -6.0000000000]) {
							cylinder(h = 6, r = 2.2500000000);
						}
					}
					union();
				}
			}
		}
		translate(v = [0.0000000000, -37.5000000000, 6]) {
			rotate(a = [0, 0, 0]) {
				difference() {
					union() {
						#translate(v = [0, 0, -6.0000000000]) {
							cylinder(h = 6, r = 2.2500000000);
						}
						#translate(v = [0, 0, -6]) {
							cylinder(h = 6, r1 = 3.2500000000, r2 = 6.5000000000);
						}
						#translate(v = [0, 0, -6.0000000000]) {
							cylinder(h = 6, r = 3.2500000000);
						}
						#translate(v = [0, 0, -6.0000000000]) {
							cylinder(h = 6, r = 2.2500000000);
						}
					}
					union();
				}
			}
		}
		translate(v = [0.0000000000, -22.5000000000, 0]) {
			translate(v = [0, 0, -100]) {
				cylinder(h = 200, r = 3.2500000000);
			}
		}
		translate(v = [0.0000000000, -7.5000000000, 0]) {
			translate(v = [0, 0, -100]) {
				cylinder(h = 200, r = 3.2500000000);
			}
		}
		translate(v = [0.0000000000, 7.5000000000, 0]) {
			translate(v = [0, 0, -100]) {
				cylinder(h = 200, r = 3.2500000000);
			}
		}
		translate(v = [0.0000000000, 22.5000000000, 0]) {
			translate(v = [0, 0, -100]) {
				cylinder(h = 200, r = 3.2500000000);
			}
		}
		translate(v = [0.0000000000, -22.5000000000, 0]) {
			translate(v = [0, 0, -100]) {
				cylinder(h = 200, r = 1.8000000000);
			}
		}
		translate(v = [0.0000000000, -15.0000000000, 0]) {
			translate(v = [0, 0, -100]) {
				cylinder(h = 200, r = 1.8000000000);
			}
		}
		translate(v = [0.0000000000, -7.5000000000, 0]) {
			translate(v = [0, 0, -100]) {
				cylinder(h = 200, r = 1.8000000000);
			}
		}
		translate(v = [0, 0, -100]) {
			cylinder(h = 200, r = 1.8000000000);
		}
		translate(v = [0.0000000000, 7.5000000000, 0]) {
			translate(v = [0, 0, -100]) {
				cylinder(h = 200, r = 1.8000000000);
			}
		}
		translate(v = [0.0000000000, 15.0000000000, 0]) {
			translate(v = [0, 0, -100]) {
				cylinder(h = 200, r = 1.8000000000);
			}
		}
		translate(v = [0.0000000000, 22.5000000000, 0]) {
			translate(v = [0, 0, -100]) {
				cylinder(h = 200, r = 1.8000000000);
			}
		}
	}
}
